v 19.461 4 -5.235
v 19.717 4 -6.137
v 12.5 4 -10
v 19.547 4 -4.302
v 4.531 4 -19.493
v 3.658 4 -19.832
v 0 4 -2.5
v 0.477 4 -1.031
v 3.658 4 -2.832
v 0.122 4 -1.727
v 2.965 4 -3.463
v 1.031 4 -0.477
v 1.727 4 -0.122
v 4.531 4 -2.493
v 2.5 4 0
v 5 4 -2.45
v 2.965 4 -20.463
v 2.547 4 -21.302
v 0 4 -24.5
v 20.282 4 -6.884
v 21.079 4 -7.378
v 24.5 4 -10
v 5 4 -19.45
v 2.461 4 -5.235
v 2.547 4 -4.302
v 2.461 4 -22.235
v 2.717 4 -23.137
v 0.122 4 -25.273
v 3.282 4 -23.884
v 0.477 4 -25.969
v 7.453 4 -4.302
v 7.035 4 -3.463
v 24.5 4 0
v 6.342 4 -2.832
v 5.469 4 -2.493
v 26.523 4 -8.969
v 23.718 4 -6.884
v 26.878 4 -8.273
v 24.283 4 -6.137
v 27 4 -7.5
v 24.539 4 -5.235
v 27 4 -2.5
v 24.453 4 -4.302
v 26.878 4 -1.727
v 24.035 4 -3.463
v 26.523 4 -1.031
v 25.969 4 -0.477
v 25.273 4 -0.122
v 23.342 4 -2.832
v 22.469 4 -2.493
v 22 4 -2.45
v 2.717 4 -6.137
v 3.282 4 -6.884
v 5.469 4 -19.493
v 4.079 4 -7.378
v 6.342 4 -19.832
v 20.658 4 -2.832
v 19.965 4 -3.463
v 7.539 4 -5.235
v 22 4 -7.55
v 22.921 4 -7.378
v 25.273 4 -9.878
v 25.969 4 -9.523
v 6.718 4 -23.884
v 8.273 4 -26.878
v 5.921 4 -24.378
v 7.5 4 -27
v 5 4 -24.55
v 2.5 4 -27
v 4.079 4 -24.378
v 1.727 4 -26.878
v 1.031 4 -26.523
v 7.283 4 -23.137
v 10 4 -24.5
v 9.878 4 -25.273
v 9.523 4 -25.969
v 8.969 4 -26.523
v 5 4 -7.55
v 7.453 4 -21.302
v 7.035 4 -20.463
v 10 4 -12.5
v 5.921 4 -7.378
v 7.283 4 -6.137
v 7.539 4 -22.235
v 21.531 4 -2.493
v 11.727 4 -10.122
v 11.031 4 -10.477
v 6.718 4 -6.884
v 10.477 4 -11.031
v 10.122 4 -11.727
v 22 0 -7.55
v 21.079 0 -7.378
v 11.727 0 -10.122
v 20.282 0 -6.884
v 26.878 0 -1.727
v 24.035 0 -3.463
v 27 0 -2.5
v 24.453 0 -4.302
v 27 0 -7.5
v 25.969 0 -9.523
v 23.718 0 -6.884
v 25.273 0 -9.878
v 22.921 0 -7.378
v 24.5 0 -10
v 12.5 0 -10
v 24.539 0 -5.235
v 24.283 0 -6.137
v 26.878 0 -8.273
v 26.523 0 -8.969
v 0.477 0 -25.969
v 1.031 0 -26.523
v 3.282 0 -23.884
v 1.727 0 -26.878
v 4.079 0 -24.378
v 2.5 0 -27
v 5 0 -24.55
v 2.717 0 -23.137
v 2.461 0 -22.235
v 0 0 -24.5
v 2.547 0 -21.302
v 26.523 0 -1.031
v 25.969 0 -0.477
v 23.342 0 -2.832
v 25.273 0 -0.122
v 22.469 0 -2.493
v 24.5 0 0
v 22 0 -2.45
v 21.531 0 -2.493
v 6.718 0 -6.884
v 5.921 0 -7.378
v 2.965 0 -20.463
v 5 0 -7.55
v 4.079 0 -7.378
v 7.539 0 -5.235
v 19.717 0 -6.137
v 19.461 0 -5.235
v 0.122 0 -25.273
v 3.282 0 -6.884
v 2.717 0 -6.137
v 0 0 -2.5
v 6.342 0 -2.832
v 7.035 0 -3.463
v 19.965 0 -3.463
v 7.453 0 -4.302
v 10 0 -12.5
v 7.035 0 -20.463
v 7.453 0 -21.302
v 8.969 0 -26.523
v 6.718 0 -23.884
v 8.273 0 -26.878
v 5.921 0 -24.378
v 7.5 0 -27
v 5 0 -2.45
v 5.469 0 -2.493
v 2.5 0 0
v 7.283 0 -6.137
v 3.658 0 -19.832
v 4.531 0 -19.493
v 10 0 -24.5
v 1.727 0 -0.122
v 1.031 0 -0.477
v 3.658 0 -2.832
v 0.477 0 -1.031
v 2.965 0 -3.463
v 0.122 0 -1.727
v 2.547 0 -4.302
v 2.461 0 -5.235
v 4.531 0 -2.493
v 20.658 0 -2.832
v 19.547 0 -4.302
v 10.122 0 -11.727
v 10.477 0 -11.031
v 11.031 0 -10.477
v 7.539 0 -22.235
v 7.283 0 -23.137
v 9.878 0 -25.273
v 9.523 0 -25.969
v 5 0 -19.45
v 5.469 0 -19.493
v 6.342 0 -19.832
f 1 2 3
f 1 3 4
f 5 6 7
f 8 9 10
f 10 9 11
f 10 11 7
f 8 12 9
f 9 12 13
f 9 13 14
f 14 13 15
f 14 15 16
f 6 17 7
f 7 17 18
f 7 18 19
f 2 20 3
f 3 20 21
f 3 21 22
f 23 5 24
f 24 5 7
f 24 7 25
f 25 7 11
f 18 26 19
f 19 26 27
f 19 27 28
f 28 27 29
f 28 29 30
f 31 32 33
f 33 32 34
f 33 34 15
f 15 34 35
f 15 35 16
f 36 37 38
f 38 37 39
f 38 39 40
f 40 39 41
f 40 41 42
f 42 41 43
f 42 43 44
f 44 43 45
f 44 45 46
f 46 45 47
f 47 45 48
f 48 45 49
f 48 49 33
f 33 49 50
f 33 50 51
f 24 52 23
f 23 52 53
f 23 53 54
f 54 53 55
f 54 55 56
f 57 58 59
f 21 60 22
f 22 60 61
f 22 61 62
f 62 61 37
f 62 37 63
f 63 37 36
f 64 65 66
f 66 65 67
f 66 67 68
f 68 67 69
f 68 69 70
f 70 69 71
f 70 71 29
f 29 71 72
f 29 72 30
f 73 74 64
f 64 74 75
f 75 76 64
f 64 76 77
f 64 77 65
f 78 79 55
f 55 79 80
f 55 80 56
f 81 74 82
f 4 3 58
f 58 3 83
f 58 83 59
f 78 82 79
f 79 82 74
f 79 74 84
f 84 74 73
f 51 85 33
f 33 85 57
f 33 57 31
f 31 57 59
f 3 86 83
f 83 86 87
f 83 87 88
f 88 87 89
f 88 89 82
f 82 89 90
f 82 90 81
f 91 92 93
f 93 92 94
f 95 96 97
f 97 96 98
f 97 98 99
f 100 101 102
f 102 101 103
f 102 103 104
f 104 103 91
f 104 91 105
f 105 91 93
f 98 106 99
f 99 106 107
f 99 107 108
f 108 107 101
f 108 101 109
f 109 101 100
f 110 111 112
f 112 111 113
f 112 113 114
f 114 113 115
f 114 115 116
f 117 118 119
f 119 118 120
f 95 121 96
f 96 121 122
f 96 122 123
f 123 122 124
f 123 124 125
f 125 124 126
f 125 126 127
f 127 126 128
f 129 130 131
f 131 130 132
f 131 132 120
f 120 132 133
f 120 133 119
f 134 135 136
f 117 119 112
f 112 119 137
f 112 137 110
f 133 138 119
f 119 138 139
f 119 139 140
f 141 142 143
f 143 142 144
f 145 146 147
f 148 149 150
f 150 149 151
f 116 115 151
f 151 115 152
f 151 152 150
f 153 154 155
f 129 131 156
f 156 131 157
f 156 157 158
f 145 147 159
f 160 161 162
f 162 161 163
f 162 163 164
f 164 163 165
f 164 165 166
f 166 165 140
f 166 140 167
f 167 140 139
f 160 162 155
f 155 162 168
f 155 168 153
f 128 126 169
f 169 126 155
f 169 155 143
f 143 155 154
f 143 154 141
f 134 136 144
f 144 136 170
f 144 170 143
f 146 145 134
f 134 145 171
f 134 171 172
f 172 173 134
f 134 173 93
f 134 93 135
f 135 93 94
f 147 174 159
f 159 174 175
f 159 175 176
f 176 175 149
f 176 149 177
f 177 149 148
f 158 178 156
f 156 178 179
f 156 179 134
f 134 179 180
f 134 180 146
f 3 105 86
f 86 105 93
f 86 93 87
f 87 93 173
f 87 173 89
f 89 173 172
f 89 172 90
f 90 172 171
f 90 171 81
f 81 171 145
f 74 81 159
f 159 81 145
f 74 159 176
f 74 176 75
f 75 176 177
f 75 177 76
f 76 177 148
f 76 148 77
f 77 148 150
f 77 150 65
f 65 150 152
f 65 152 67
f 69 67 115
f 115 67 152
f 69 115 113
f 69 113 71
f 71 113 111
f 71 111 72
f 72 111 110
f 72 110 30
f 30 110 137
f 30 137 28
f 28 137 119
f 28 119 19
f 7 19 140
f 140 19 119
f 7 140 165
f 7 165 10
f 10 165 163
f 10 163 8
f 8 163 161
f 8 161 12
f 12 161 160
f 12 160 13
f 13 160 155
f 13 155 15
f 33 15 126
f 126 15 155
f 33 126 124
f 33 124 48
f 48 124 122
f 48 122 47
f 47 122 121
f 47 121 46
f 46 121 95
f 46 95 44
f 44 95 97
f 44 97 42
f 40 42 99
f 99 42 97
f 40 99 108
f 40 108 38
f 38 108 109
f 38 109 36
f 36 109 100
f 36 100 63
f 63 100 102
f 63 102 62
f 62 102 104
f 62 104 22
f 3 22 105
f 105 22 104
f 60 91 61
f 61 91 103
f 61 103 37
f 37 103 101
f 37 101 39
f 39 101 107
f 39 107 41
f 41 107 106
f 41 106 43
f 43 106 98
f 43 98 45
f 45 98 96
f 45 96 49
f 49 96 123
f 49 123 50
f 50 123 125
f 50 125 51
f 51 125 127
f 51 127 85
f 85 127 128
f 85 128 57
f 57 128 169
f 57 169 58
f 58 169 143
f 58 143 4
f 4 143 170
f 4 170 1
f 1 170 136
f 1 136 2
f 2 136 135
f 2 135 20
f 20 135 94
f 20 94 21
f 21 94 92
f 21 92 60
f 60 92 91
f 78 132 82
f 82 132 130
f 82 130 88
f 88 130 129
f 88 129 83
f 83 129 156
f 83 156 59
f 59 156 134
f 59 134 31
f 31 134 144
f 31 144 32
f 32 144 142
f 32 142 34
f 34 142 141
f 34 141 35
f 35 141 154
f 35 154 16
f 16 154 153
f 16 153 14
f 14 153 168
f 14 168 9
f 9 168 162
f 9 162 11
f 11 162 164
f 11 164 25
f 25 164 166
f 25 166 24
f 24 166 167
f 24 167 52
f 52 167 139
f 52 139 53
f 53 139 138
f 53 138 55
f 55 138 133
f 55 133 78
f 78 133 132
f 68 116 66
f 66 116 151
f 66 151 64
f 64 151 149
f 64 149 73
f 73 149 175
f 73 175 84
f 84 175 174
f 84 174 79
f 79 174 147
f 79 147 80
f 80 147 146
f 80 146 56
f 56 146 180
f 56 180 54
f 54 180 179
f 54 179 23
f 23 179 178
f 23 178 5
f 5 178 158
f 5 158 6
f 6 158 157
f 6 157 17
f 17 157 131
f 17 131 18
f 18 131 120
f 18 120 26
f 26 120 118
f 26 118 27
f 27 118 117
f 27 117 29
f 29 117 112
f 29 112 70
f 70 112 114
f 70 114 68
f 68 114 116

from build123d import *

# Parameters (mm, degrees)
SKETCH1_R           = 2.55
BOSS_EXTRUDE1_DEPTH = 4


with BuildPart() as part:
    # Sketch1 → Boss-Extrude1 (new body)
    with BuildSketch(Plane(origin=(0, 0, 0), x_dir=(1, 0, 0), z_dir=(0, 1, 0))):
        with BuildLine():
            Line((0, 2.5), (0, 24.5))
            ThreePointArc((0, 24.5), (0.732233047, 26.267766953), (2.5, 27))
            Line((2.5, 27), (7.5, 27))
            ThreePointArc((7.5, 27), (9.267766953, 26.267766953), (10, 24.5))
            Line((10, 24.5), (10, 12.5))
            ThreePointArc((10, 12.5), (10.732233047, 10.732233047), (12.5, 10))
            Line((12.5, 10), (24.5, 10))
            ThreePointArc((24.5, 10), (26.267766953, 9.267766953), (27, 7.5))
            Line((27, 7.5), (27, 2.5))
            ThreePointArc((27, 2.5), (26.267766953, 0.732233047), (24.5, 0))
            Line((24.5, 0), (2.5, 0))
            ThreePointArc((2.5, 0), (0.732233047, 0.732233047), (0, 2.5))
        make_face()
        with Locations(Location((22, 5, 0), (0, 0, 270))):
            Circle(SKETCH1_R, mode=Mode.SUBTRACT)
        with Locations(Location((5, 5, 0), (0, 0, 270))):
            Circle(SKETCH1_R, mode=Mode.SUBTRACT)
        with Locations(Location((5, 22, 0), (0, 0, 270))):
            Circle(SKETCH1_R, mode=Mode.SUBTRACT)
    extrude(amount=BOSS_EXTRUDE1_DEPTH)


solid = part.part
